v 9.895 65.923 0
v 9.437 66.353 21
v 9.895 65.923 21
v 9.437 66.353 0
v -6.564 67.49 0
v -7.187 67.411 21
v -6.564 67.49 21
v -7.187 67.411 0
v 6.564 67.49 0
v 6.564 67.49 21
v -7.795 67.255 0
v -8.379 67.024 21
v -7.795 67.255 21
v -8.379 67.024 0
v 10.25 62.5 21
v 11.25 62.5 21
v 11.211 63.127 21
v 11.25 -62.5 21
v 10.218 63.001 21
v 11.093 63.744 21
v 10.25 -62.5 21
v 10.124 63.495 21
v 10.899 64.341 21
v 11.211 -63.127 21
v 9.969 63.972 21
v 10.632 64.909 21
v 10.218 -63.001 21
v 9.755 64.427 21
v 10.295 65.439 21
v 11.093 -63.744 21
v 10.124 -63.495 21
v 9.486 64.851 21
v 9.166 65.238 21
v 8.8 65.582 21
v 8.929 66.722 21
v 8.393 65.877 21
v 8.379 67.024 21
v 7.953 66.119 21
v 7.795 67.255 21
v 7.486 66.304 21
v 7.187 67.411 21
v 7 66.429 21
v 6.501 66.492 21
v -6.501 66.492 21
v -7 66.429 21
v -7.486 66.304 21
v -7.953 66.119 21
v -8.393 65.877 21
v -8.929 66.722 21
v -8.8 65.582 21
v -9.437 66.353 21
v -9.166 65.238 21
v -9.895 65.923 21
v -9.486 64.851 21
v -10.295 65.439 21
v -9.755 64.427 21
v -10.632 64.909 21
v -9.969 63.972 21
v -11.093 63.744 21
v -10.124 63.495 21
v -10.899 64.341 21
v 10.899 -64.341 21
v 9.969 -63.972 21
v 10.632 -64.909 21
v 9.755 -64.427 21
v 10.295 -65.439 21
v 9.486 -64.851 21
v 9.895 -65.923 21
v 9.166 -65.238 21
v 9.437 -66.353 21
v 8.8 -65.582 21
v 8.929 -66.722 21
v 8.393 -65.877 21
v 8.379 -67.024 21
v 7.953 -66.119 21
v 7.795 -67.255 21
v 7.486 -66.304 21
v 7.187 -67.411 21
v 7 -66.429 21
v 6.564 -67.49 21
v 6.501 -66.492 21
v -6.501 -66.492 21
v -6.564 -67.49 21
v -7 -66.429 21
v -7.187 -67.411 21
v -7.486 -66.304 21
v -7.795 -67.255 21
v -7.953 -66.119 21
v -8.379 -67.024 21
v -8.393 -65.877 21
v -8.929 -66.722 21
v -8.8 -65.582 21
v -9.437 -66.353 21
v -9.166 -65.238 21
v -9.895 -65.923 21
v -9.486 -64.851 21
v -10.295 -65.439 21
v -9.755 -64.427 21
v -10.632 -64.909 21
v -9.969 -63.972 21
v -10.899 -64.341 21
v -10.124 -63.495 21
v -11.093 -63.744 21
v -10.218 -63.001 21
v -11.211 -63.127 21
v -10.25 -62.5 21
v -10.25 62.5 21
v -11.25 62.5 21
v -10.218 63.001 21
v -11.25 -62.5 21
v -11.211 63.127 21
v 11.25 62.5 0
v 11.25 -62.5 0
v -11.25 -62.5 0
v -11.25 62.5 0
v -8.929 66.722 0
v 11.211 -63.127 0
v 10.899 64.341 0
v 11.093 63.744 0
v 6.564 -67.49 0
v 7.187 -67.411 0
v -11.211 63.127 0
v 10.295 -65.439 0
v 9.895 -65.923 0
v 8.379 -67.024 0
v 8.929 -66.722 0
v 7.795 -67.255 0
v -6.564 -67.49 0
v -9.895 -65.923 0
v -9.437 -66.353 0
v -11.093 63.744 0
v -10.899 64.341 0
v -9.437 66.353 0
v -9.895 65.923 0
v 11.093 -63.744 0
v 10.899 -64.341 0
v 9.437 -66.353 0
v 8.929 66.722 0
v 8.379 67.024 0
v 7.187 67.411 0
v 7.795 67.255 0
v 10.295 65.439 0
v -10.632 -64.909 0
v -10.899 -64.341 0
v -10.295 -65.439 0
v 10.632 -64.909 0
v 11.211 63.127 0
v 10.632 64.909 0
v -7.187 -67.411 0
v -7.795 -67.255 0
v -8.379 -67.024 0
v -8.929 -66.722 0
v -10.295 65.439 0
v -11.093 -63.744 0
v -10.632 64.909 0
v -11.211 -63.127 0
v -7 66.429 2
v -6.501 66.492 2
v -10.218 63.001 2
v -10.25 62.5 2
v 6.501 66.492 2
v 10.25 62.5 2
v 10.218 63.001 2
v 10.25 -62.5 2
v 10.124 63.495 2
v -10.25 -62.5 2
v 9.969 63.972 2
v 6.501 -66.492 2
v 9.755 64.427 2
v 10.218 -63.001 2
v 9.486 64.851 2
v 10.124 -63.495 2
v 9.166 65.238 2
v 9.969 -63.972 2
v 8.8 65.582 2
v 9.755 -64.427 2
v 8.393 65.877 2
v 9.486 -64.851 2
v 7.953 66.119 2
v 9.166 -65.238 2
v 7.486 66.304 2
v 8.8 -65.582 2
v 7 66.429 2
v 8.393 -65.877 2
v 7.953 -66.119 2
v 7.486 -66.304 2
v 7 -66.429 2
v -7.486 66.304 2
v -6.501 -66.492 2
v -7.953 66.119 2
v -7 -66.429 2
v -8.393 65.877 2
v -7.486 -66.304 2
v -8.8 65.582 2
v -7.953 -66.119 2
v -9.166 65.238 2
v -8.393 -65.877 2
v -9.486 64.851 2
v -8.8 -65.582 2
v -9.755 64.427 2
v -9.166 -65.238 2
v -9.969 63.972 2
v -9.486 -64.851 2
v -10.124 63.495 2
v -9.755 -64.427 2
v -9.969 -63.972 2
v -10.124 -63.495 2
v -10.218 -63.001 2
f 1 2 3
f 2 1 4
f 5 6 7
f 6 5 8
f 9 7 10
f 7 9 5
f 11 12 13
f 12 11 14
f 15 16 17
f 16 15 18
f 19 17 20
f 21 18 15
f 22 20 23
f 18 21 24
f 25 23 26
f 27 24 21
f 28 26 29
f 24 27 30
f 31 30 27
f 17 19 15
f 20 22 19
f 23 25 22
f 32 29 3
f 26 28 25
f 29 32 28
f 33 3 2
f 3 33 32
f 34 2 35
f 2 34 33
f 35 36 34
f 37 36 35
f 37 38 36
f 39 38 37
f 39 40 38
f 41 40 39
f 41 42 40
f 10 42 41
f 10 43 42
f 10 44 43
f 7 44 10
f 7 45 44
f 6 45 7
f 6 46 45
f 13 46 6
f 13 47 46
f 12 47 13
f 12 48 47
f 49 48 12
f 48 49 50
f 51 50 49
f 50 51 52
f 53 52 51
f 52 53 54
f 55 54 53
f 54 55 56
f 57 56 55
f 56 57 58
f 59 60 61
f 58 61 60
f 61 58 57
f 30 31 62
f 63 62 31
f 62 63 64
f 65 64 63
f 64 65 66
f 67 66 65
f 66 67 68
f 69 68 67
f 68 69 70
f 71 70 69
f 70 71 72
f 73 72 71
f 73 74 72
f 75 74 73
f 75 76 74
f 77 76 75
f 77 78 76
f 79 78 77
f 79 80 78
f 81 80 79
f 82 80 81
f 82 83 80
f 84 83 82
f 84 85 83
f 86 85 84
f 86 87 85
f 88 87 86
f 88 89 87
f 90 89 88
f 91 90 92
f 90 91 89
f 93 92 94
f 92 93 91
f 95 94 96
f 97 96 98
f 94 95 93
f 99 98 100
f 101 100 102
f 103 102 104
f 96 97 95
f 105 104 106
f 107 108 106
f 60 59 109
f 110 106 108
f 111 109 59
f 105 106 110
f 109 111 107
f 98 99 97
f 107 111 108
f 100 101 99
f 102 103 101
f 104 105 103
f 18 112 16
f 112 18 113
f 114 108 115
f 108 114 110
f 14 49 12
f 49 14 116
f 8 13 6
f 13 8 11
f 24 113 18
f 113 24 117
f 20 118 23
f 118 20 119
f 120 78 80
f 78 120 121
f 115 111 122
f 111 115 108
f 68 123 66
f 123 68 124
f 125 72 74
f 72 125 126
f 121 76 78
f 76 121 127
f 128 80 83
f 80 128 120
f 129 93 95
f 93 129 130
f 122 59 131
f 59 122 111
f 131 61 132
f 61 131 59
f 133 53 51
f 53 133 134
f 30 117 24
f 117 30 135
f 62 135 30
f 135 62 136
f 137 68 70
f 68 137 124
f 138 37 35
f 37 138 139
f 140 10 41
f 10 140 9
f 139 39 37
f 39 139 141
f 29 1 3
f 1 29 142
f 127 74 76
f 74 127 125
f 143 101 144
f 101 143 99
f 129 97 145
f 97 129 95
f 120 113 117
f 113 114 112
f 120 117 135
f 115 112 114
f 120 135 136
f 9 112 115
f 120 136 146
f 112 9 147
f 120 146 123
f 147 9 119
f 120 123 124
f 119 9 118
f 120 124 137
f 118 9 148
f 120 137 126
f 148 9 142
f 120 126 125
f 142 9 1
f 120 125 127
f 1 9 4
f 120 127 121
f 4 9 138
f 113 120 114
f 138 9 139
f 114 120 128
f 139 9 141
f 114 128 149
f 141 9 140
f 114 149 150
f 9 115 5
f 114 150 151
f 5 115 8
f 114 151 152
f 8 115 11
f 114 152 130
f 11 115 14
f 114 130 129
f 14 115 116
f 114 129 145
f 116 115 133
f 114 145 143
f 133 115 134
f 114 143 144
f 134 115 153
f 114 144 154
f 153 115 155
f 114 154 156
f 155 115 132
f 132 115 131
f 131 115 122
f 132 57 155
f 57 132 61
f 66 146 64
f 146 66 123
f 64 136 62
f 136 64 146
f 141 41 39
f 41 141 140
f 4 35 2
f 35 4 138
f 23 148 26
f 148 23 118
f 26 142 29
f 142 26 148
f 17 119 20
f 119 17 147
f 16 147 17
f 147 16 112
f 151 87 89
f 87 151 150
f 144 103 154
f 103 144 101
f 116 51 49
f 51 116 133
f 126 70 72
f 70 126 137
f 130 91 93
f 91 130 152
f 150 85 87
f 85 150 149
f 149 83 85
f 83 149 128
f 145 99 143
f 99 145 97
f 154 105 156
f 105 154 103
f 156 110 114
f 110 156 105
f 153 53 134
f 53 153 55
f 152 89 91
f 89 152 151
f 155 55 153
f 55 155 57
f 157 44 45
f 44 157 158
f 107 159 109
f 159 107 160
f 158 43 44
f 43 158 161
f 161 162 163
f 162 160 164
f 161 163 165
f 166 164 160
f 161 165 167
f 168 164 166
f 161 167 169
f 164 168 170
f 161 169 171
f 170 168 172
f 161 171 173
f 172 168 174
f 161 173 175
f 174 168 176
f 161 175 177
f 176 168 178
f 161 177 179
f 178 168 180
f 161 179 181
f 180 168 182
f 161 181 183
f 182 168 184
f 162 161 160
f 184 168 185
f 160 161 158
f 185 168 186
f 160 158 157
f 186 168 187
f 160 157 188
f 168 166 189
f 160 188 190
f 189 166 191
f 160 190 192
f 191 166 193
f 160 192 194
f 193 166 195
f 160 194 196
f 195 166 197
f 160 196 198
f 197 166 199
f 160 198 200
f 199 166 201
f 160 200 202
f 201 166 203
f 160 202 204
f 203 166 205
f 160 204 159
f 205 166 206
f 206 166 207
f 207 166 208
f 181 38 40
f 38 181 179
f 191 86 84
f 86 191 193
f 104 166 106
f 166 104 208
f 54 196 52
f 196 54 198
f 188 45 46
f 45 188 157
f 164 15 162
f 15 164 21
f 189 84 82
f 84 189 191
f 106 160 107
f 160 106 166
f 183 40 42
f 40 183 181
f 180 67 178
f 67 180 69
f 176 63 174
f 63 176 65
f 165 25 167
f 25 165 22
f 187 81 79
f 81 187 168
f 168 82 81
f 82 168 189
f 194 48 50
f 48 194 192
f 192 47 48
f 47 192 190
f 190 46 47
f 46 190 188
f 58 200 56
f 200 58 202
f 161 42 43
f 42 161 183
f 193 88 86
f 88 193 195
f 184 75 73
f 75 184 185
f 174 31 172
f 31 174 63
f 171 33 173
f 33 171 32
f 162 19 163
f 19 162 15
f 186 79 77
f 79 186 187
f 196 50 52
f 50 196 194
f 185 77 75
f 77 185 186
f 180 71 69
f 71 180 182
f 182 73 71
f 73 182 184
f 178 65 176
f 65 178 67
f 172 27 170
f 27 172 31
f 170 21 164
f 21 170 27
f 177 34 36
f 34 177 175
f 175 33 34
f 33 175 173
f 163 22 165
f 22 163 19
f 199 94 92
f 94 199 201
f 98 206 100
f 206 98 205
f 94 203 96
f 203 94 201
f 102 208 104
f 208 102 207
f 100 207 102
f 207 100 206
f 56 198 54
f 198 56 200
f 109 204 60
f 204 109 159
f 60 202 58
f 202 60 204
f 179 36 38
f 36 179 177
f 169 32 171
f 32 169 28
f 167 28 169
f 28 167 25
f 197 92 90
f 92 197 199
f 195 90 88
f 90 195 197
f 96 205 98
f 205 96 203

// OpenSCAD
$fn = 50;


difference() {
	union() {
		hull() {
			translate(v = [-6.2500000000, 62.5000000000, 0]) {
				cylinder(h = 21, r = 5);
			}
			translate(v = [6.2500000000, 62.5000000000, 0]) {
				cylinder(h = 21, r = 5);
			}
			translate(v = [-6.2500000000, -62.5000000000, 0]) {
				cylinder(h = 21, r = 5);
			}
			translate(v = [6.2500000000, -62.5000000000, 0]) {
				cylinder(h = 21, r = 5);
			}
		}
	}
	union() {
		translate(v = [0, 0, 2]) {
			hull() {
				translate(v = [-6.2500000000, 62.5000000000, 0]) {
					cylinder(h = 19, r = 4);
				}
				translate(v = [6.2500000000, 62.5000000000, 0]) {
					cylinder(h = 19, r = 4);
				}
				translate(v = [-6.2500000000, -62.5000000000, 0]) {
					cylinder(h = 19, r = 4);
				}
				translate(v = [6.2500000000, -62.5000000000, 0]) {
					cylinder(h = 19, r = 4);
				}
			}
		}
	}
}
